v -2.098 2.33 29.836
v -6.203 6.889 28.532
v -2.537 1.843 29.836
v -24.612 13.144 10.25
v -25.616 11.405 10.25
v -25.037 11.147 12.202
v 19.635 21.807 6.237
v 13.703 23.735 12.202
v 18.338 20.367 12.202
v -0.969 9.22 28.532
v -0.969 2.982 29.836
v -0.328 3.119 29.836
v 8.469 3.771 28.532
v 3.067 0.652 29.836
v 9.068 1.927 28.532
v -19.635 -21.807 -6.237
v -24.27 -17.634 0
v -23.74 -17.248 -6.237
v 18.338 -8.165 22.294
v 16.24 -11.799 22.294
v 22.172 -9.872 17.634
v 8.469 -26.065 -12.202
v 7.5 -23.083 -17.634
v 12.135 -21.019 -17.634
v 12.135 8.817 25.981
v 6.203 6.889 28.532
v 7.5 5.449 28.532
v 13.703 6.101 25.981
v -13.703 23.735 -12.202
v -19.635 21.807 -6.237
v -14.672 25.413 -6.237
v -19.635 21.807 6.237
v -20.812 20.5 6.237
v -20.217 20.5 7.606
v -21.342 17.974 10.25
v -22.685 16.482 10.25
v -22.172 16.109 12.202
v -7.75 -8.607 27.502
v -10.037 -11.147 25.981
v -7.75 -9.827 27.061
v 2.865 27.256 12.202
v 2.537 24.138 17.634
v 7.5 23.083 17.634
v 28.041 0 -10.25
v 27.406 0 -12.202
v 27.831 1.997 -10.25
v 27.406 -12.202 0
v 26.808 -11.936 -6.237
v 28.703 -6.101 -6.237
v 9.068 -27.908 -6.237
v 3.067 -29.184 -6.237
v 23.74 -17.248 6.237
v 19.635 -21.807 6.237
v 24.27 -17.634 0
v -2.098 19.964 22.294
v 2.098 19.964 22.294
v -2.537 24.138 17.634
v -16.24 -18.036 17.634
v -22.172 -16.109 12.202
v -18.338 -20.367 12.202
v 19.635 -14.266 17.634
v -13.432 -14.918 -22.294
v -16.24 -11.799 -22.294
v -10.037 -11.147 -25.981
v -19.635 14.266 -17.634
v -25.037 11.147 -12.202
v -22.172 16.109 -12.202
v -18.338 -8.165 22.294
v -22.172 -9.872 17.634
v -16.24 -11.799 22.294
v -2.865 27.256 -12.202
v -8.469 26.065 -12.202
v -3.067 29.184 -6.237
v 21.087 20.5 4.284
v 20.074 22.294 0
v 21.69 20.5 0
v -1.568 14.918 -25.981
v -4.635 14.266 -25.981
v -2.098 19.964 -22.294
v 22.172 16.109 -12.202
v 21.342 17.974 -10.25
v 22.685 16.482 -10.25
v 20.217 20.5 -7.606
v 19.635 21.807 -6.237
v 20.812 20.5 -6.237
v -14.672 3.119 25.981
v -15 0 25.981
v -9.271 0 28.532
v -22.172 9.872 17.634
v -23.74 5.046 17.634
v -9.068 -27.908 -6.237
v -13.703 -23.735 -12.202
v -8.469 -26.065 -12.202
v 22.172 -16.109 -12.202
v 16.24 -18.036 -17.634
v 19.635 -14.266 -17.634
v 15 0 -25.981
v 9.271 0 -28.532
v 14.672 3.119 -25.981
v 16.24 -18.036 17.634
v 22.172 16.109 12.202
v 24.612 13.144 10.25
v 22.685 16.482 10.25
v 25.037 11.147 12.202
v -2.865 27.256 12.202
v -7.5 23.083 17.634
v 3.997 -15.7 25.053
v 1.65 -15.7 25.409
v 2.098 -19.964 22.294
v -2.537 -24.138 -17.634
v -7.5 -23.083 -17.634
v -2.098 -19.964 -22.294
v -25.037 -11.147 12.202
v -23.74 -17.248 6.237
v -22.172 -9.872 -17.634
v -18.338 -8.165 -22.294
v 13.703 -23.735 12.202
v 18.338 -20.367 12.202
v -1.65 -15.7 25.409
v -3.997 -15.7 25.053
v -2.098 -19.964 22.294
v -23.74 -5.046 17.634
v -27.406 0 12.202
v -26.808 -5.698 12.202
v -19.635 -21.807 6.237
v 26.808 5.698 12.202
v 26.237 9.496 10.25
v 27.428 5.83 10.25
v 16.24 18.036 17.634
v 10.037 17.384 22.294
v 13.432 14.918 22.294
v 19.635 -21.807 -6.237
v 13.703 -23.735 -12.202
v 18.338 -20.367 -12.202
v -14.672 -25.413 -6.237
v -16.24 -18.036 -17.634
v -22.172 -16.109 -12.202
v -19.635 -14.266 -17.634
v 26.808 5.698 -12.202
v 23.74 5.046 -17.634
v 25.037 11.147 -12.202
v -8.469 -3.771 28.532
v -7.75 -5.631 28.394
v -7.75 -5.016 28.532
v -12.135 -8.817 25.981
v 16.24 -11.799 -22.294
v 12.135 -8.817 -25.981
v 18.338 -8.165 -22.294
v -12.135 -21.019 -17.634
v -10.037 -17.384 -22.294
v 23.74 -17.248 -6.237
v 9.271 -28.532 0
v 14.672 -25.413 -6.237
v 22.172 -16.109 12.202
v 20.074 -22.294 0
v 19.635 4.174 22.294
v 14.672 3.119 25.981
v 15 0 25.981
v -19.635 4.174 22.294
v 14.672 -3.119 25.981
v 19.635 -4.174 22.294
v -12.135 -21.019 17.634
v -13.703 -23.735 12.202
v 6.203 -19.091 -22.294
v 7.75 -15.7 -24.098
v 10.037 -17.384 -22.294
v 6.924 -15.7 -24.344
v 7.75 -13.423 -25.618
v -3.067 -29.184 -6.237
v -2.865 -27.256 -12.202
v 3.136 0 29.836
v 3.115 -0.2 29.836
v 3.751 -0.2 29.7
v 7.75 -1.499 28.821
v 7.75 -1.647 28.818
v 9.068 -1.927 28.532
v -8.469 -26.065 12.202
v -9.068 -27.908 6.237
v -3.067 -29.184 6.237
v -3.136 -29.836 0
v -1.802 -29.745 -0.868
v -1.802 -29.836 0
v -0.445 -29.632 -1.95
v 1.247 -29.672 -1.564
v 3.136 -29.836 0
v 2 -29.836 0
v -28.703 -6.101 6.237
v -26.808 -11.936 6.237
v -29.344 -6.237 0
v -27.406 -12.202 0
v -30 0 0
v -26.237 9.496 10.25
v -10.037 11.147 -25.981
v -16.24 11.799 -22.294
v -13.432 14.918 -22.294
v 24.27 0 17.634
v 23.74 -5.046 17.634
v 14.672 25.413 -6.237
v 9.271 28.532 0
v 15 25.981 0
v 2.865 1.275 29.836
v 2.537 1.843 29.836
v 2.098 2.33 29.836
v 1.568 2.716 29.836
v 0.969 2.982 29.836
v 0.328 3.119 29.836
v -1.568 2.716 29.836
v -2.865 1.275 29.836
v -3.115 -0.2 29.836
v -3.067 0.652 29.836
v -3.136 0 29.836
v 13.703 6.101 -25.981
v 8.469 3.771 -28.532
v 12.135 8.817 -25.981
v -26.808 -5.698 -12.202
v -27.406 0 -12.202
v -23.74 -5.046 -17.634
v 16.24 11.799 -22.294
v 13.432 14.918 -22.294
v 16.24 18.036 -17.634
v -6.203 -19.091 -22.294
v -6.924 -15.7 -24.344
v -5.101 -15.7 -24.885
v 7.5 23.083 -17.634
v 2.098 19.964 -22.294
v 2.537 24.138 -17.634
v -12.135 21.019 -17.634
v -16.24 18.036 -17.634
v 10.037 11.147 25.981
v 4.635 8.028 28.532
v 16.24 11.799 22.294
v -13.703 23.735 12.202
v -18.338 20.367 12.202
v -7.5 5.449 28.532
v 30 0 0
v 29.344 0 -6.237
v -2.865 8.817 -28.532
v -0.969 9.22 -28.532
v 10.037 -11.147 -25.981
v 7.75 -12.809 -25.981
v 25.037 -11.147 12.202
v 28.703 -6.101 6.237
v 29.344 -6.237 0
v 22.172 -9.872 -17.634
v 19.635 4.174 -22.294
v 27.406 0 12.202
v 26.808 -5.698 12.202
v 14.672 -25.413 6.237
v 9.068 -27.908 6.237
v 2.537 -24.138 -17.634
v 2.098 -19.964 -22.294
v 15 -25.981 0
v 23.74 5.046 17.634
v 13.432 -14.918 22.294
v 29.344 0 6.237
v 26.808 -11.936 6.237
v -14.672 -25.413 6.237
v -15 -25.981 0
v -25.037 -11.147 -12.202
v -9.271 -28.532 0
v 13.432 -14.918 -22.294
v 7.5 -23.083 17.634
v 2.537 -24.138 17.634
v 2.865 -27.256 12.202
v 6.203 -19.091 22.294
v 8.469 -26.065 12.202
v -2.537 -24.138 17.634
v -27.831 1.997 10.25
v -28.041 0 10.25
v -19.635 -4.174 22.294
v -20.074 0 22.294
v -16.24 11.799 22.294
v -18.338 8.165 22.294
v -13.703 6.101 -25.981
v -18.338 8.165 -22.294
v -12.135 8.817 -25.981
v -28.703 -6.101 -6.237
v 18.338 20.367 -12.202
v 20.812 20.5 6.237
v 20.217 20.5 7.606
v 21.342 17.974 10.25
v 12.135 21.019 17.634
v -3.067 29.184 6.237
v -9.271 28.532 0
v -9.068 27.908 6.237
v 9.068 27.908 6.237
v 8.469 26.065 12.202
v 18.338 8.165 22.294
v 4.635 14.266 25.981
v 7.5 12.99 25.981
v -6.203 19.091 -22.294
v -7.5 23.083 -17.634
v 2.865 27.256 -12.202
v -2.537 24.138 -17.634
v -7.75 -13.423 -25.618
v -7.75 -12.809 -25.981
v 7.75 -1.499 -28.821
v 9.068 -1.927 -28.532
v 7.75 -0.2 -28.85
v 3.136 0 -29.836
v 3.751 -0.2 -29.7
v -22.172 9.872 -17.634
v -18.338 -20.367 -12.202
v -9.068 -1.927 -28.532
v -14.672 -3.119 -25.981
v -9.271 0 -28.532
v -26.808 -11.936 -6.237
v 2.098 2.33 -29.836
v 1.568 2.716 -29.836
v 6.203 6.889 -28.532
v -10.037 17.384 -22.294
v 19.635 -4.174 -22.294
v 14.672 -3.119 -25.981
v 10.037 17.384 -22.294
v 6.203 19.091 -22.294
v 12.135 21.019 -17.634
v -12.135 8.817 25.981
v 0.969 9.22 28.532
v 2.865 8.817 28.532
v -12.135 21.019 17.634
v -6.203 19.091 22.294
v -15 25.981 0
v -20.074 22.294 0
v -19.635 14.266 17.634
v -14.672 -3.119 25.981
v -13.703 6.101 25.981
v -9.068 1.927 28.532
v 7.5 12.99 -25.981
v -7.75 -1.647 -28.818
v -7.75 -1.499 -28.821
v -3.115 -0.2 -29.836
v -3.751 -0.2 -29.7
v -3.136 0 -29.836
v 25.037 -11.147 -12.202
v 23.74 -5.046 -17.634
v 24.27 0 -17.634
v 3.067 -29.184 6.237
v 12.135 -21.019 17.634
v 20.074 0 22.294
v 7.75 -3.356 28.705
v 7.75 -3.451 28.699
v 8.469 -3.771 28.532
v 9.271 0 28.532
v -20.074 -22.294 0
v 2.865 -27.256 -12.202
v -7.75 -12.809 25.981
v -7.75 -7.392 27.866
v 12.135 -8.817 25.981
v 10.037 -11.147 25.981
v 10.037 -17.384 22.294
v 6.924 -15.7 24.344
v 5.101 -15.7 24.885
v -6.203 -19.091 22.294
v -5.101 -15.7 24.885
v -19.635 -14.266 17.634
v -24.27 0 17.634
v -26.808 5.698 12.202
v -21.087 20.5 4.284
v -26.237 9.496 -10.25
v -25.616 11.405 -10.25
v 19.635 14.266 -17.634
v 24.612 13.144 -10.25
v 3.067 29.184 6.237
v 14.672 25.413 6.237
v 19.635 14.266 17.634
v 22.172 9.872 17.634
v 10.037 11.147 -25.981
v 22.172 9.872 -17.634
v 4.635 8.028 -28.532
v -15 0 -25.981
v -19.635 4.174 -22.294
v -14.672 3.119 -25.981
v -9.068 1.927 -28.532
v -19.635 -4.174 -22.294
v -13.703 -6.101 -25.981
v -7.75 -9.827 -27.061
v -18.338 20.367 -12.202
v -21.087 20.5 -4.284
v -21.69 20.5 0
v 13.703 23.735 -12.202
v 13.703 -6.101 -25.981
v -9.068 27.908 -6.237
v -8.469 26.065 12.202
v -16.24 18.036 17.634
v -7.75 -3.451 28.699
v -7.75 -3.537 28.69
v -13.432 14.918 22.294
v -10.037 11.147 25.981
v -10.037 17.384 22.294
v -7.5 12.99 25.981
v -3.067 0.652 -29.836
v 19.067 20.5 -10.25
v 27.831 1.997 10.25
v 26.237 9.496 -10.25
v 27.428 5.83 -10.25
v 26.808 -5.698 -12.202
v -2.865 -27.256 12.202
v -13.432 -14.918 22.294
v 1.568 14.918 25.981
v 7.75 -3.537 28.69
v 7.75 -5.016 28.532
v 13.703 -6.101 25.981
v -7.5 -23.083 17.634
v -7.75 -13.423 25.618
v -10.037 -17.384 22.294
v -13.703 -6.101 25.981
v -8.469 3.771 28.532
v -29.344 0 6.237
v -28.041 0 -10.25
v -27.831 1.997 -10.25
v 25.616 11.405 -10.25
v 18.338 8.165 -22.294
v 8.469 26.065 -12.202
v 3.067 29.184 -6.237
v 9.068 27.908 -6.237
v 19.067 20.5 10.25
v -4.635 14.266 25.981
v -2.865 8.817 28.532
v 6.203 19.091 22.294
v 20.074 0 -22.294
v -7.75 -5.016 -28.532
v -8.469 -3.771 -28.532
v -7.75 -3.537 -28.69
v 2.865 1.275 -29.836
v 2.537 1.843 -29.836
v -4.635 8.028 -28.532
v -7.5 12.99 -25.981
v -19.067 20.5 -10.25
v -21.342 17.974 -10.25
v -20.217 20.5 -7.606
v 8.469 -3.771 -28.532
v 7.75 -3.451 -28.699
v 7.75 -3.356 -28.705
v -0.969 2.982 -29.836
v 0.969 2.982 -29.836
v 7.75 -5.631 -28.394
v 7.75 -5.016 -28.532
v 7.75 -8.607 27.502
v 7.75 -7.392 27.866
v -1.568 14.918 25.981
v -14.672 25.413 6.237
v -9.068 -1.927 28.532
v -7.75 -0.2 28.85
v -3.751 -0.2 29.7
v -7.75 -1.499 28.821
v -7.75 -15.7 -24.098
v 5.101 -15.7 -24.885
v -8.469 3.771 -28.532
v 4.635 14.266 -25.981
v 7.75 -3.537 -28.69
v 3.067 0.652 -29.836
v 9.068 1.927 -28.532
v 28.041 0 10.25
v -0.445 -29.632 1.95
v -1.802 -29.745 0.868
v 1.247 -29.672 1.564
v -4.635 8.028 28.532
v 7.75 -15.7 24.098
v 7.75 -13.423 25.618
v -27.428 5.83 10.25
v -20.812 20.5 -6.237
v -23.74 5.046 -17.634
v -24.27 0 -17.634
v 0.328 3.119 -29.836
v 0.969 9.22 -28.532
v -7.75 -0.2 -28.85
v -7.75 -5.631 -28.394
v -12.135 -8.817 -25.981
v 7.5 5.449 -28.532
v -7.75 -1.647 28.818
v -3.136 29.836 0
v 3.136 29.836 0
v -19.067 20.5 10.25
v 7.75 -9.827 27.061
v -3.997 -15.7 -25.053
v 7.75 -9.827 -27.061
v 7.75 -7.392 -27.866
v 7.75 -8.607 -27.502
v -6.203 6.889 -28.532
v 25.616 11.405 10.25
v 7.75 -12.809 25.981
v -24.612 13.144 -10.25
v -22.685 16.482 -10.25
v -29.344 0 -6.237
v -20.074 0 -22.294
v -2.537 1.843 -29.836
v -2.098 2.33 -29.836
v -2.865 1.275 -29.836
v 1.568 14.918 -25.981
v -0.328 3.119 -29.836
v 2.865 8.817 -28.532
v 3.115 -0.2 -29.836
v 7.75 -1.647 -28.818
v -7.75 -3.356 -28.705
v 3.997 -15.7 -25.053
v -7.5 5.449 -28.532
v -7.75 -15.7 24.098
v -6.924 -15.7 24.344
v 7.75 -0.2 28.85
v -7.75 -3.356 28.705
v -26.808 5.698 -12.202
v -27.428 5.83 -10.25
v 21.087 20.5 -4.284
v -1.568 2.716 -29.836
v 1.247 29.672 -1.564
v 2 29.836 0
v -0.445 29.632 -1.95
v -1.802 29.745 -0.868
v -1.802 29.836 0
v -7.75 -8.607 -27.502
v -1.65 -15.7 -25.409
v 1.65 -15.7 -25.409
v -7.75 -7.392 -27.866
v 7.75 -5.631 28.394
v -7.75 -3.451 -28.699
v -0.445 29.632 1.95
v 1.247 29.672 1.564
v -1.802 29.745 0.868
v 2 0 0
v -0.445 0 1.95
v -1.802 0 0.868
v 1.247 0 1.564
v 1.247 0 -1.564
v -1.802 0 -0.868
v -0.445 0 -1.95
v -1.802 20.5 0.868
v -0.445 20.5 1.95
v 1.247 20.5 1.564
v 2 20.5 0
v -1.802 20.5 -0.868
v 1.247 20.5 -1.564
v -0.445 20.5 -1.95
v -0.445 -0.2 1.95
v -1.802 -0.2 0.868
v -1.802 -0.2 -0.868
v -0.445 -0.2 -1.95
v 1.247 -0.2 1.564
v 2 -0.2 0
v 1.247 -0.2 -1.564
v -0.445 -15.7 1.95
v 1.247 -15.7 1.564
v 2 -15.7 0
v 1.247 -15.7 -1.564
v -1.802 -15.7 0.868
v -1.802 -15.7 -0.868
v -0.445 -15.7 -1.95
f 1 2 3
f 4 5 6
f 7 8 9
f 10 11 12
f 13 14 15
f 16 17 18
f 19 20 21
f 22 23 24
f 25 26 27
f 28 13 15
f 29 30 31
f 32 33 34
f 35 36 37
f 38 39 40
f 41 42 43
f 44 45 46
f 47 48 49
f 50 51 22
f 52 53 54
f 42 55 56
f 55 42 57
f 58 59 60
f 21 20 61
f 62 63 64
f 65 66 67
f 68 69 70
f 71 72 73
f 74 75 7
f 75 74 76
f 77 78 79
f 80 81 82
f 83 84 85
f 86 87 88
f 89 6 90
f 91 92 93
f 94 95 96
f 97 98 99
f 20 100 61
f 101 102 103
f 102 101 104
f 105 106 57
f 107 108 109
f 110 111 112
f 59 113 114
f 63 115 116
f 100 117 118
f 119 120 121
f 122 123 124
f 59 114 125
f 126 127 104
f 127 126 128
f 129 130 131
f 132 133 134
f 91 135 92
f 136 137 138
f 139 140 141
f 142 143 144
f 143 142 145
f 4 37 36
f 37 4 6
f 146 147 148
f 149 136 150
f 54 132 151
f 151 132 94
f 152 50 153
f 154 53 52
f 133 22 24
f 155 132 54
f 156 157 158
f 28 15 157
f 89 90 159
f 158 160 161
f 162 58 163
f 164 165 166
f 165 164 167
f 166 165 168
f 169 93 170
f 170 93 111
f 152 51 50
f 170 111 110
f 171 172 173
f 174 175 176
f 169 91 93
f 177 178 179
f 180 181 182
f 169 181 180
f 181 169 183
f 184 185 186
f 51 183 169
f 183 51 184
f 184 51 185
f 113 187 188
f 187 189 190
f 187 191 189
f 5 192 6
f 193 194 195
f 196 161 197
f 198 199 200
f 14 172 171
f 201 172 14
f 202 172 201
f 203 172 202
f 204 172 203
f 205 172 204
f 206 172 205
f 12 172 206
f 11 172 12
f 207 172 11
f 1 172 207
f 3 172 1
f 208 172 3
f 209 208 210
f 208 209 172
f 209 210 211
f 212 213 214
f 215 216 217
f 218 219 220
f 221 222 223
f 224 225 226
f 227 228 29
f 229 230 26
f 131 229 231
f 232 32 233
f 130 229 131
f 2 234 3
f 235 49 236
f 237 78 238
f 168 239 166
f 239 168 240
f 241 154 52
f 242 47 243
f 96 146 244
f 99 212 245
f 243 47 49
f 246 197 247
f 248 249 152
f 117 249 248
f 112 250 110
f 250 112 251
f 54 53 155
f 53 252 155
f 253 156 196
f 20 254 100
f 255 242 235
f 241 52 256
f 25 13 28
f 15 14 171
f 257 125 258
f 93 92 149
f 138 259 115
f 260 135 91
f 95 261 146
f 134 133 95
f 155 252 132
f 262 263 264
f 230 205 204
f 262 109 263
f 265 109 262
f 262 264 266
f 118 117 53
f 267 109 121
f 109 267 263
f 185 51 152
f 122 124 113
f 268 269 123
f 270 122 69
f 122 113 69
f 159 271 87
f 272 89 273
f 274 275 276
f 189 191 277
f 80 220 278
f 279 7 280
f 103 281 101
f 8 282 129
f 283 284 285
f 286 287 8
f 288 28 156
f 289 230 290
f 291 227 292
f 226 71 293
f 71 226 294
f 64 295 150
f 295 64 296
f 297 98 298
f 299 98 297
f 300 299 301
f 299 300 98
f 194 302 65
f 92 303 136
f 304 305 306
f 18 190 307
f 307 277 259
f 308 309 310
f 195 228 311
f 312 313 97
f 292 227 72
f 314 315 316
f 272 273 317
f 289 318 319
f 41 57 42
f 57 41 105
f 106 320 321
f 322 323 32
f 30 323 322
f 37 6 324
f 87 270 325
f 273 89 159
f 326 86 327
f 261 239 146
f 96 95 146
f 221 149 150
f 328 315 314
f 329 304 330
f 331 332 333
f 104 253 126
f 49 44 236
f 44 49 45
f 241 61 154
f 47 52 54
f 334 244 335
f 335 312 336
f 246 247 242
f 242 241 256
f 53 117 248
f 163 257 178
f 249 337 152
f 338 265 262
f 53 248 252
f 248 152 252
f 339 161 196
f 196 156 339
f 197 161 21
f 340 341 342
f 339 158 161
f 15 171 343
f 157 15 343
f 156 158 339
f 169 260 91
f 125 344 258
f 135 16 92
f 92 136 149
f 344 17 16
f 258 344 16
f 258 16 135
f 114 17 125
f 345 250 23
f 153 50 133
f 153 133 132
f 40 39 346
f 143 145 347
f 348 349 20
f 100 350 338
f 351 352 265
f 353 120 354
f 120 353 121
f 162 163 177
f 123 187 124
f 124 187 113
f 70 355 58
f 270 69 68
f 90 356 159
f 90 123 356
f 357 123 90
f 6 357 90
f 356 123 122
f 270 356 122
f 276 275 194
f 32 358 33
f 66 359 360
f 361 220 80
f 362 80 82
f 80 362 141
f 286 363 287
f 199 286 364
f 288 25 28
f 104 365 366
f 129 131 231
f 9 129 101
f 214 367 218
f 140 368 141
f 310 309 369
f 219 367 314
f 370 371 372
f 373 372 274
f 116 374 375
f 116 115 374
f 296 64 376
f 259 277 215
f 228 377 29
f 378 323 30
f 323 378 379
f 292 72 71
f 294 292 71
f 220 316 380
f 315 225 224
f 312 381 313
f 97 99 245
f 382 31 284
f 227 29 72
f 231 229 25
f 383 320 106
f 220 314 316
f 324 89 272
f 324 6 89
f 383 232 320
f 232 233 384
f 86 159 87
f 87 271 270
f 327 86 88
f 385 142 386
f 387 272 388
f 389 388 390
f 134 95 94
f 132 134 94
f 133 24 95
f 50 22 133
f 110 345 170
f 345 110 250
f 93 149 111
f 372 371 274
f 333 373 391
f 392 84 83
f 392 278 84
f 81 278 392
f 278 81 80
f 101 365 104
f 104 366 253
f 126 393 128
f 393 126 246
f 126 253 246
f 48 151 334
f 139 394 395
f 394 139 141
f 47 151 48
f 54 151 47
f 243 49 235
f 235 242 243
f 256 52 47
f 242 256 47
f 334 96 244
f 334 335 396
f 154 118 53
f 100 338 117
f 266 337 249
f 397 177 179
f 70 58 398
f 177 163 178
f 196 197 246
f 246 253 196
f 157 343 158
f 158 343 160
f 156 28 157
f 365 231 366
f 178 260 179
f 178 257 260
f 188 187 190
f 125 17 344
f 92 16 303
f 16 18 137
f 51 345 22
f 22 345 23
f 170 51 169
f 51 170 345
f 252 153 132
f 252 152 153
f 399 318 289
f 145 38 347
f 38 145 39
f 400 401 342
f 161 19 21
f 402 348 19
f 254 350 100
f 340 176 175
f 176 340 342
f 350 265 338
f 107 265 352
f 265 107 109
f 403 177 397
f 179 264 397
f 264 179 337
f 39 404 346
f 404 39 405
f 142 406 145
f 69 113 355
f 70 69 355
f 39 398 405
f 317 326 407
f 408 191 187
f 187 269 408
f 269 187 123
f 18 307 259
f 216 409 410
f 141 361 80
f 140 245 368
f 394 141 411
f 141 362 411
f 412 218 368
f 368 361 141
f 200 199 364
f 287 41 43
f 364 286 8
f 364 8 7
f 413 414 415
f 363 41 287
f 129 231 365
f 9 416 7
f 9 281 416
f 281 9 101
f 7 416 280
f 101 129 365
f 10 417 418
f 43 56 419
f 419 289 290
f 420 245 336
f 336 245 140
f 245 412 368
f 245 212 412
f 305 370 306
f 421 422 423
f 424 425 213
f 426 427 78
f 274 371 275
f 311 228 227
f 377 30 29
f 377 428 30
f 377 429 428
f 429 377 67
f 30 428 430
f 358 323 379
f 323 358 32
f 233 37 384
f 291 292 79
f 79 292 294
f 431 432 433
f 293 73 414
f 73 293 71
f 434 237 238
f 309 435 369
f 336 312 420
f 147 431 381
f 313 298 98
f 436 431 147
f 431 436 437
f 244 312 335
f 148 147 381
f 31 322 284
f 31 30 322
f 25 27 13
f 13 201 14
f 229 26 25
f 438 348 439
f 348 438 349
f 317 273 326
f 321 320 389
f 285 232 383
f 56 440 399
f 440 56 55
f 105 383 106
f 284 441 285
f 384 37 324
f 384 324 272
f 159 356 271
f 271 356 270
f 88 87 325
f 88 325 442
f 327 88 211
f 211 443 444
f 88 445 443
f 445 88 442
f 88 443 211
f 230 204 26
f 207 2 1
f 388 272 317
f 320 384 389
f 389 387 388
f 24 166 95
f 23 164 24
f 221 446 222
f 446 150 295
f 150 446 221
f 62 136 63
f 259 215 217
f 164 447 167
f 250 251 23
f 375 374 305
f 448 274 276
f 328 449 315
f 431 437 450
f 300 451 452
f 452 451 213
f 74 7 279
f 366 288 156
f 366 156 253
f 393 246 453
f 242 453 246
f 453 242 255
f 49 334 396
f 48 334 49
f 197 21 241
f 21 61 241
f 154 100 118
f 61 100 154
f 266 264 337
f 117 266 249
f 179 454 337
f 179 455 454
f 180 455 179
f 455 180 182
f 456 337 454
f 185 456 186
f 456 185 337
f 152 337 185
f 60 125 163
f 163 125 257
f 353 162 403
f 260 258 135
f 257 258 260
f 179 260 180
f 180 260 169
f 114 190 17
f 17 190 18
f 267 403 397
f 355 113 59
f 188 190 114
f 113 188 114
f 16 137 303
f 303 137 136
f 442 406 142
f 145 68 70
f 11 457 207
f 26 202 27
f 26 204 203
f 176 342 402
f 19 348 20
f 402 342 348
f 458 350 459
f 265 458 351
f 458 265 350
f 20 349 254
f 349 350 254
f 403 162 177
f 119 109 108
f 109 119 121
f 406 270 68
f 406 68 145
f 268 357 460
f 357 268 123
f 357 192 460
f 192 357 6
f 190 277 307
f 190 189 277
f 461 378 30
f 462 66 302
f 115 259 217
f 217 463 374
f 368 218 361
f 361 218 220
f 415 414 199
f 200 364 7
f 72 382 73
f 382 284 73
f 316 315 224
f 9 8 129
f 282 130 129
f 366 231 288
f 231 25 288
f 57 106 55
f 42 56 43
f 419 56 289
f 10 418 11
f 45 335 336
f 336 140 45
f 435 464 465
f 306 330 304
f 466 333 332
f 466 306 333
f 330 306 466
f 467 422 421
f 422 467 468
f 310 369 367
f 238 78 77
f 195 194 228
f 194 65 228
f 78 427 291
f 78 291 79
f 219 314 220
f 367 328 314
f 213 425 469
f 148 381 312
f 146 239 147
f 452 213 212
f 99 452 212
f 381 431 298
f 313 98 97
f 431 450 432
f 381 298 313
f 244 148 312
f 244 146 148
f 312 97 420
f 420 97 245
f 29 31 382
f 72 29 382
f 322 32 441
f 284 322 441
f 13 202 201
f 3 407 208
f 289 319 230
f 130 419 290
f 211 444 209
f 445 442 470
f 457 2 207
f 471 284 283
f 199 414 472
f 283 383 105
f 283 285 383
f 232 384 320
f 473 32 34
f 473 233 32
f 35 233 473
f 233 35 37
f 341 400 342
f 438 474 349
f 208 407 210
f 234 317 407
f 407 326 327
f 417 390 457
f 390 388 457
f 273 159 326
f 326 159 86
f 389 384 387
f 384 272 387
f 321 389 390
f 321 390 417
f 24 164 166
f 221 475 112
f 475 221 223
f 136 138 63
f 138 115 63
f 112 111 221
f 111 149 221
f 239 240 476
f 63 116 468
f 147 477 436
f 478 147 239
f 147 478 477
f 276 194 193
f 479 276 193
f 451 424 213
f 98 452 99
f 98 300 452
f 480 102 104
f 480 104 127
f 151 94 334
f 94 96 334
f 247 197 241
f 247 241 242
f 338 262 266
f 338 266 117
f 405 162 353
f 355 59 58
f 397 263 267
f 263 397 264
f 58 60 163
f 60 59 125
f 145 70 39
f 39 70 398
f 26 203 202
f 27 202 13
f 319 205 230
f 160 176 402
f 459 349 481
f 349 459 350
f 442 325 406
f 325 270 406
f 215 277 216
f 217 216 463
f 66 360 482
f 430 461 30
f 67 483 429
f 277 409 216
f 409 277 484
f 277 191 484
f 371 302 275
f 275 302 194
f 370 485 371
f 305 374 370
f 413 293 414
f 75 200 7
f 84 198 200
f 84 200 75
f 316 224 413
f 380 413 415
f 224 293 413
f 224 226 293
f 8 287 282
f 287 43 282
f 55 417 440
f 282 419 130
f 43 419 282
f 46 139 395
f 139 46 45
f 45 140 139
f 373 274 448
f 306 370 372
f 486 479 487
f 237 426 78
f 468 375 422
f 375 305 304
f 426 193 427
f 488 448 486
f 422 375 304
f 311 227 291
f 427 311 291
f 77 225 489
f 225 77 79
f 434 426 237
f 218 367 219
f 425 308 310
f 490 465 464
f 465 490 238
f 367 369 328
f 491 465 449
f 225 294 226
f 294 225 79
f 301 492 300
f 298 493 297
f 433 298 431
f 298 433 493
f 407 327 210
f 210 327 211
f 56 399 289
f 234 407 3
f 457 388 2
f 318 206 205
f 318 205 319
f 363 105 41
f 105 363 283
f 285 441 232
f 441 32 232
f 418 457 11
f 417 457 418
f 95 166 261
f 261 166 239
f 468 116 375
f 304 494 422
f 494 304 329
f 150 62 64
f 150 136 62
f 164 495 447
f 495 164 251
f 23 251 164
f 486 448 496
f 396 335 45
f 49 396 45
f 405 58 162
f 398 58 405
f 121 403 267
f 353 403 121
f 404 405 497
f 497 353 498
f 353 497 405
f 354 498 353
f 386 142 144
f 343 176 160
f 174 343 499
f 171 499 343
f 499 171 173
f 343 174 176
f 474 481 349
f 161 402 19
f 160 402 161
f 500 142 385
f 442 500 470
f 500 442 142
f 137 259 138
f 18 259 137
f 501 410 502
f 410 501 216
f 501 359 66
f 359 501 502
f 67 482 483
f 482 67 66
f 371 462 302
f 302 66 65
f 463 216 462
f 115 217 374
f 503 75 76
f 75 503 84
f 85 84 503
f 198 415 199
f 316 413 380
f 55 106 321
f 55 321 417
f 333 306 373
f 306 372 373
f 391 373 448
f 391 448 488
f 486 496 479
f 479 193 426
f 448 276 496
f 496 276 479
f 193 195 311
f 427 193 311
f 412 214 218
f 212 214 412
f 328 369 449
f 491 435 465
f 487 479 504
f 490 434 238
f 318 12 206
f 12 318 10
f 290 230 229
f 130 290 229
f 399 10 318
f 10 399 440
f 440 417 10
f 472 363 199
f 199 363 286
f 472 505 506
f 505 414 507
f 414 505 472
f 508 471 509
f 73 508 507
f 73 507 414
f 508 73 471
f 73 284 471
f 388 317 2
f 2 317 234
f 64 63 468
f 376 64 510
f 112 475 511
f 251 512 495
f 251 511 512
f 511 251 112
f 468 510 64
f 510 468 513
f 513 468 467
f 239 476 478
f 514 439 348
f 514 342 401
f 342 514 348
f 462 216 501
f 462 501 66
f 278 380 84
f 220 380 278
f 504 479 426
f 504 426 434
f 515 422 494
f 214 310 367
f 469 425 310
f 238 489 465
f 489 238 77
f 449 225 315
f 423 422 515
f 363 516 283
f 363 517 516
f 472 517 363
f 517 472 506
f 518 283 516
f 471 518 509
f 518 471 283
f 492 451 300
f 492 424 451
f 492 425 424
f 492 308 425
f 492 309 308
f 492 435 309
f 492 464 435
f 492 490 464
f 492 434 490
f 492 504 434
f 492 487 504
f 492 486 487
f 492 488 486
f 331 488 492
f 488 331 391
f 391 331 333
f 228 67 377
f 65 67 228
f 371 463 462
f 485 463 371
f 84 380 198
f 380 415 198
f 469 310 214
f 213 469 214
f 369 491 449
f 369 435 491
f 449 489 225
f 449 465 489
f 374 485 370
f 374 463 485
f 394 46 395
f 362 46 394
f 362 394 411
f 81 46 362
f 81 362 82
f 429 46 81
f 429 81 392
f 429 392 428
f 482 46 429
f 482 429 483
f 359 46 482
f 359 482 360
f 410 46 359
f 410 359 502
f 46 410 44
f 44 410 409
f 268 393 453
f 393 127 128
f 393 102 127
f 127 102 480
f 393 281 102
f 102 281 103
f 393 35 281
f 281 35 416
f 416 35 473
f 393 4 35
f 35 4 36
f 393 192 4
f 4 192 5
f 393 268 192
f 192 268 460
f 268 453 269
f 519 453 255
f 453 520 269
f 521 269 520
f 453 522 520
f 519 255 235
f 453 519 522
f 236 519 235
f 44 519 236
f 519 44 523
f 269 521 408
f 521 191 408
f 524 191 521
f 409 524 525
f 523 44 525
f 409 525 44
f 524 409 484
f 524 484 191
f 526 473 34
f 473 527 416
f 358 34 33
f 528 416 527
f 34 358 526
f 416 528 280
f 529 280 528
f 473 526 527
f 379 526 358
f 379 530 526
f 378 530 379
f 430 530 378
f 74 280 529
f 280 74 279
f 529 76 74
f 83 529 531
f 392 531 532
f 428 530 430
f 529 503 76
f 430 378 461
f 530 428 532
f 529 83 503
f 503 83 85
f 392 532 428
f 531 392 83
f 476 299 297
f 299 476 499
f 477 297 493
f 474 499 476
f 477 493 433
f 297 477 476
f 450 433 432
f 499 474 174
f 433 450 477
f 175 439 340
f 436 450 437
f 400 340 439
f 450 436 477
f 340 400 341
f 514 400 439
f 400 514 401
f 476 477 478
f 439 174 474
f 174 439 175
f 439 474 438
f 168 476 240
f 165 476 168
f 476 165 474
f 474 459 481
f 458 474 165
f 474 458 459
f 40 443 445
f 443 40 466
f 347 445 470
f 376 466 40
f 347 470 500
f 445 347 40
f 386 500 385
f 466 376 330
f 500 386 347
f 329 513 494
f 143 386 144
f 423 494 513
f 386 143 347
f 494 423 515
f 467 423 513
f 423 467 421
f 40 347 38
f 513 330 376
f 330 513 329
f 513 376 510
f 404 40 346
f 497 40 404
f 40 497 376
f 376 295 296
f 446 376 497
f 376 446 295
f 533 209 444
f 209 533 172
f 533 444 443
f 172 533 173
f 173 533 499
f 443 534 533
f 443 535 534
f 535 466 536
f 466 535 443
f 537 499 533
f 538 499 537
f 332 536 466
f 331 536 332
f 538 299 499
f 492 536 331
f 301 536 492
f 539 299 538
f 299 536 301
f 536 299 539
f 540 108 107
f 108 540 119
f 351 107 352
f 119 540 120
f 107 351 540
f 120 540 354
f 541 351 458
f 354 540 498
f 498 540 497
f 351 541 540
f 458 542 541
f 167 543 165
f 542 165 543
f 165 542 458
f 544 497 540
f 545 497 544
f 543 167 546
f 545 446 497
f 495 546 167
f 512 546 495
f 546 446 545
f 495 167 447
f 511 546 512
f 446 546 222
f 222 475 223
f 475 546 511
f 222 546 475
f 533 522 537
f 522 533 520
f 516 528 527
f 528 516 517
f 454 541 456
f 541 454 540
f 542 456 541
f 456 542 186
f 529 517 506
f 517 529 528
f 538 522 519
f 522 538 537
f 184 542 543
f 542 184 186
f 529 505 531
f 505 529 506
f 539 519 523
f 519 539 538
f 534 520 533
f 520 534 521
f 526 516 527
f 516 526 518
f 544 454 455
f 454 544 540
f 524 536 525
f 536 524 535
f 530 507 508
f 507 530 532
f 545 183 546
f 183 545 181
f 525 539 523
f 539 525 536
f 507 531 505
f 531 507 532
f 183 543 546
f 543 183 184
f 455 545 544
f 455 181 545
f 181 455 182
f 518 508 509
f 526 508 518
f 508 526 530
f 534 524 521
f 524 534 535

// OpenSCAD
rotatorRod=20.5;
antenaRod=15.5;
wallThickness=4;

difference(){
	sphere(r=30);

	#translate([0,rotatorRod/2,0]) rotate([00,90,00]) cube([rotatorRod,rotatorRod,100],center=true);
	#translate([0,-antenaRod/2-0.2,0]) cube([antenaRod,antenaRod,100],center=true);
	#rotate([90,00,00]) cylinder(d=4,h=150, center=true);
}
